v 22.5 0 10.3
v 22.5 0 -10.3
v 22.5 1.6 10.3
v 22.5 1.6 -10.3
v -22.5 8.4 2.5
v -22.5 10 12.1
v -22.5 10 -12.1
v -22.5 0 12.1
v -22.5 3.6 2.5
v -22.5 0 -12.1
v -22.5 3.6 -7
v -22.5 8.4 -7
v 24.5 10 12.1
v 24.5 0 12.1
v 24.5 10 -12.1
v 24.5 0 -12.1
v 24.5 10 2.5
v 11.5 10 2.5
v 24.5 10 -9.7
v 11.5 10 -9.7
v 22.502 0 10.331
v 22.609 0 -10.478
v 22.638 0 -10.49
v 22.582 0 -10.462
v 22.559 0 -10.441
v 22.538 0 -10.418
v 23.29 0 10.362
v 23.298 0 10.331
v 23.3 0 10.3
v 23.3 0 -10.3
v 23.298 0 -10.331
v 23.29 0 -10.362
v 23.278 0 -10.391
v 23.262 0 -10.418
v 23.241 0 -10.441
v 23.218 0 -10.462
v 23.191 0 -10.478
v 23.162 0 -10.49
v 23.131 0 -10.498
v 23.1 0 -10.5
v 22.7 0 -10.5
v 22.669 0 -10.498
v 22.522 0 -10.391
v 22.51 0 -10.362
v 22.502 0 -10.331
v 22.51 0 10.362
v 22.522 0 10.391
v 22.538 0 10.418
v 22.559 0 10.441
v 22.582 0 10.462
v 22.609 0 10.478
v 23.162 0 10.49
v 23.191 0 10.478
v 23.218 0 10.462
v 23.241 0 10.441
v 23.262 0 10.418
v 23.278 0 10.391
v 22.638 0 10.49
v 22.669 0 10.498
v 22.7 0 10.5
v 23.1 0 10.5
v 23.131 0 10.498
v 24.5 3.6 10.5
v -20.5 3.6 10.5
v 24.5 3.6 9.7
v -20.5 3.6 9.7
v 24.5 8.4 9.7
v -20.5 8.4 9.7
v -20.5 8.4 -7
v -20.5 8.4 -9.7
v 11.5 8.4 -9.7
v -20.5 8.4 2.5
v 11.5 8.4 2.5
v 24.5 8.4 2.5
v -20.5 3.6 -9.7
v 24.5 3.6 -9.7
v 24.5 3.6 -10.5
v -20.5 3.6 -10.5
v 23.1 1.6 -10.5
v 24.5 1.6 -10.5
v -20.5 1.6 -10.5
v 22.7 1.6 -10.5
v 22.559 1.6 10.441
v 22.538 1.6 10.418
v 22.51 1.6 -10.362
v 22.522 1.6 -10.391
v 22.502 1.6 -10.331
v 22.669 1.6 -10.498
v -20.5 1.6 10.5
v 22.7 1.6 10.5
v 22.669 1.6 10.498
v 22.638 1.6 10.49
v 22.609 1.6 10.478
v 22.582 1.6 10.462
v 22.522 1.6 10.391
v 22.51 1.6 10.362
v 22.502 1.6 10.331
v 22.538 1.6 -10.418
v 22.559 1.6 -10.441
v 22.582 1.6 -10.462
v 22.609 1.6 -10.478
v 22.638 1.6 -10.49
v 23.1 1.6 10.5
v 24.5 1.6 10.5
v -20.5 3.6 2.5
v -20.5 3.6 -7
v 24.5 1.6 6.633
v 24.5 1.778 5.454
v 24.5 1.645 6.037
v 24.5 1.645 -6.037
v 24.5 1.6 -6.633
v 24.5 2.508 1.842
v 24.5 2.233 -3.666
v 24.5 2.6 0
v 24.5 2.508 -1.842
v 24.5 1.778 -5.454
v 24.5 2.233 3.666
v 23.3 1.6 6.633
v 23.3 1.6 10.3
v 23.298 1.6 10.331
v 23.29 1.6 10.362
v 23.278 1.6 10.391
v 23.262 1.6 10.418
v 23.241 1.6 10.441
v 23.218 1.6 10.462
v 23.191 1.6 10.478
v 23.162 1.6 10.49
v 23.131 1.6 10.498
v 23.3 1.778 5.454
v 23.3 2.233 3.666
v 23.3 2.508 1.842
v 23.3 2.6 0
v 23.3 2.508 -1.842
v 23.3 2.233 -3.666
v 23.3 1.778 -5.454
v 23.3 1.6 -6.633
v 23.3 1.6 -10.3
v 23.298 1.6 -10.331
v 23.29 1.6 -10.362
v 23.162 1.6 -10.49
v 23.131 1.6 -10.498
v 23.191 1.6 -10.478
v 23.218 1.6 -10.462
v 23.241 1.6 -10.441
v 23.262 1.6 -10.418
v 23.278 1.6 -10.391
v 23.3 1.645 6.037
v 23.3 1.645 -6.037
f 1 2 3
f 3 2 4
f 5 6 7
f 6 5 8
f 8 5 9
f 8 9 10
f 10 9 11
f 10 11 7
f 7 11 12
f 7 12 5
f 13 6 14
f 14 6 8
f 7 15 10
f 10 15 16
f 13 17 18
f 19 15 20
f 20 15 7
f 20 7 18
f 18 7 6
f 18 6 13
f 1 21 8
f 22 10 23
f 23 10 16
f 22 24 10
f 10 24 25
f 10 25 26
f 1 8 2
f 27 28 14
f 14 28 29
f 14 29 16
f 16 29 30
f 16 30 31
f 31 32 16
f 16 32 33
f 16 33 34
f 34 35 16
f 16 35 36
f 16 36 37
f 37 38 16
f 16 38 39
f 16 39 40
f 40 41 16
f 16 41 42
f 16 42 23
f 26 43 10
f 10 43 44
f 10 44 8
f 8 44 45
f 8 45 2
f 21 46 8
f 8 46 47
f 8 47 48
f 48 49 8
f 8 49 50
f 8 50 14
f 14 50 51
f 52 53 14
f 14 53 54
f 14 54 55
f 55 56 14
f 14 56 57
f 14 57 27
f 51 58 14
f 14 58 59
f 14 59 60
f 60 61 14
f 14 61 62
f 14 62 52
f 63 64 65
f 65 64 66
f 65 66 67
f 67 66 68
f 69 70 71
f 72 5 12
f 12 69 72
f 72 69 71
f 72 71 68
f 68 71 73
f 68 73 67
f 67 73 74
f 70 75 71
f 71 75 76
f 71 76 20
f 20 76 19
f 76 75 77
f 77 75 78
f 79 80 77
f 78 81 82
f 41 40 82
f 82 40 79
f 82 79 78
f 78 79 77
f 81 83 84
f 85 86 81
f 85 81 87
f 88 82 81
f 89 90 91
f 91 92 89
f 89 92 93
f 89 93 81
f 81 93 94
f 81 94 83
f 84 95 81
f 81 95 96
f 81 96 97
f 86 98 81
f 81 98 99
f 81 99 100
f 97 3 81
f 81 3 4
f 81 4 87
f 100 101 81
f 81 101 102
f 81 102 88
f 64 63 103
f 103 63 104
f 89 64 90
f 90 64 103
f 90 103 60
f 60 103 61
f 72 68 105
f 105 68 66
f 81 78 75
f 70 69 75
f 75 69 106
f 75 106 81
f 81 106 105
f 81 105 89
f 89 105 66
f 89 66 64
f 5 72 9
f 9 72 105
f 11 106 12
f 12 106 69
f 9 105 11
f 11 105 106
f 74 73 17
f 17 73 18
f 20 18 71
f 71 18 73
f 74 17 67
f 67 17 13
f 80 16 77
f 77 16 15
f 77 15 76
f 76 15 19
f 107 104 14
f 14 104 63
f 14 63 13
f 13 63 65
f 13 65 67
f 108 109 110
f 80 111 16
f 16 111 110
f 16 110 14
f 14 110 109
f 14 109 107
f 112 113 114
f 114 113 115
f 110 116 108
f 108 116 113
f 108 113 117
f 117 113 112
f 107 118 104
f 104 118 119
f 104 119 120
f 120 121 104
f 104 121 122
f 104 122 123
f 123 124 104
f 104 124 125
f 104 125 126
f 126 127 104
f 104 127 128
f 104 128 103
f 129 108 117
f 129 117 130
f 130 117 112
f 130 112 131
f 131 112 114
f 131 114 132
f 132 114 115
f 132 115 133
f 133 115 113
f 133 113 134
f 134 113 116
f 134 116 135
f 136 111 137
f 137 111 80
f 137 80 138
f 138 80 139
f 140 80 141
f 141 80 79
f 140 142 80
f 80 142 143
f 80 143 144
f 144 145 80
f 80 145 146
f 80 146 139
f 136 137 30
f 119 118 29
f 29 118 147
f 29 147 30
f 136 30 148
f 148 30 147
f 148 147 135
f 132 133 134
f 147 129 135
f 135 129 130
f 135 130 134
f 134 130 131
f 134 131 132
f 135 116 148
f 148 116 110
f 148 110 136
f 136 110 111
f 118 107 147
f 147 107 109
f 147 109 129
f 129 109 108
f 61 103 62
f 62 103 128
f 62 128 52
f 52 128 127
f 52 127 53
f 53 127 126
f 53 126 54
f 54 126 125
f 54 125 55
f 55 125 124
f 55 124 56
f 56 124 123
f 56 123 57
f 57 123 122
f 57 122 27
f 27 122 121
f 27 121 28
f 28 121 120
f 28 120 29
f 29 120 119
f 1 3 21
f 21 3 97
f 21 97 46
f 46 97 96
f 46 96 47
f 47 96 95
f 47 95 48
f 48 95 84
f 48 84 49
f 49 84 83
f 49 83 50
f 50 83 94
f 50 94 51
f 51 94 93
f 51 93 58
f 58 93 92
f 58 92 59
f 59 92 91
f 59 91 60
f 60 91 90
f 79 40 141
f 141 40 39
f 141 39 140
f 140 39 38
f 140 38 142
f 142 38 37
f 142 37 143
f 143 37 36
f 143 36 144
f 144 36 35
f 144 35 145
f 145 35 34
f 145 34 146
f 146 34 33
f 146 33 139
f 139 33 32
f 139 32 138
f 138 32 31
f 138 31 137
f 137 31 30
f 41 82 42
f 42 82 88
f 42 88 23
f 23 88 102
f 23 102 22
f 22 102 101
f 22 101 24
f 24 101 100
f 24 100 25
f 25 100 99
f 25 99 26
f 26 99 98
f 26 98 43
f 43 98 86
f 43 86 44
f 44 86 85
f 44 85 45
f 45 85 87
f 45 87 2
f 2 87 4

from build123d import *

# Parameters (mm, degrees)
CROQUIS1_W              = 45
CROQUIS1_H              = 24.2
SALIENTE_EXTRUIR1_DEPTH = 10
CORTAR_EXTRUIR2_DEPTH   = 43
CROQUIS4_W              = 9.5
CROQUIS4_H              = 4.8
CORTAR_EXTRUIR3_DEPTH   = 48.659311787
CROQUIS5_W              = 12.2
CROQUIS5_H              = 1.6
CORTAR_EXTRUIR4_DEPTH   = 11
SALIENTE_EXTRUIR2_DEPTH = 2
SALIENTE_EXTRUIR3_DEPTH = 1.2
REDONDEO1_R             = 4
REDONDEO2_R             = 0.2


with BuildPart() as part:
    # Croquis1 → Saliente-Extruir1 (new body)
    with BuildSketch(Plane(origin=(0, 0, 0), x_dir=(1, 0, 0), z_dir=(0, 1, 0))):
        Rectangle(CROQUIS1_W, CROQUIS1_H)
    extrude(amount=SALIENTE_EXTRUIR1_DEPTH)

    # Croquis2 → Cortar-Extruir2 (cut)
    with BuildSketch(Plane(origin=(22.5, 0, 0), x_dir=(0, 0, -1), z_dir=(1, 0, 0))):
        Polygon((10.5, 1.6), (-10.5, 1.6), (-10.5, 3.6), (-9.7, 3.6), (-9.7, 8.4), (9.7, 8.4), (9.7, 3.6), (10.5, 3.6), align=None)
    extrude(amount=-CORTAR_EXTRUIR2_DEPTH, mode=Mode.SUBTRACT)

    # Croquis4 → Cortar-Extruir3 (cut, through all)
    with BuildSketch(Plane(origin=(22.5, 0, 0), x_dir=(0, 0, -1), z_dir=(1, 0, 0))):
        with Locations((2.25, 6)):
            Rectangle(CROQUIS4_W, CROQUIS4_H)
    extrude(amount=-CORTAR_EXTRUIR3_DEPTH, mode=Mode.SUBTRACT)

    # Croquis5 → Cortar-Extruir4 (cut)
    with BuildSketch(Plane(origin=(22.5, 0, 0), x_dir=(0, 0, -1), z_dir=(1, 0, 0))):
        with Locations((3.6, 9.2)):
            Rectangle(CROQUIS5_W, CROQUIS5_H)
    extrude(amount=-CORTAR_EXTRUIR4_DEPTH, mode=Mode.SUBTRACT)

    # Croquis6 → Saliente-Extruir2 (add)
    with BuildSketch(Plane(origin=(22.5, 0, 0), x_dir=(0, 0, -1), z_dir=(1, 0, 0))):
        Polygon((-2.5, 10), (-12.1, 10), (-12.1, 0), (-10.5, 0), (-10.5, 1.6), (-10.5, 3.6), (-9.7, 3.6), (-9.7, 8.4), (-2.5, 8.4), align=None)
        Polygon((12.1, 10), (9.7, 10), (9.7, 3.6), (10.5, 3.6), (10.5, 1.6), (10.5, 0), (12.1, 0), align=None)
    extrude(amount=SALIENTE_EXTRUIR2_DEPTH)

    # Croquis7 → Saliente-Extruir3 (add)
    with BuildSketch(Plane(origin=(24.5, 0, 0), x_dir=(0, 0, -1), z_dir=(1, 0, 0))):
        with BuildLine():
            Line((-10.5, 0), (10.5, 0))
            Line((10.5, 0), (10.5, 1.6))
            Line((10.5, 1.6), (6, 1.6))
            ThreePointArc((6, 1.6), (0, 2.6), (-6, 1.6))
            Line((-6, 1.6), (-10.5, 1.6))
            Line((-10.5, 1.6), (-10.5, 0))
        make_face()
    extrude(amount=-SALIENTE_EXTRUIR3_DEPTH)

    # Redondeo1
    redondeo1_edges = [part.edges().sort_by_distance(p)[0] for p in [
        (23.9, 1.6, 6),
        (23.9, 1.6, -6),
    ]]
    fillet(redondeo1_edges, radius=REDONDEO1_R)

    # Redondeo2
    redondeo2_edges = [part.edges().sort_by_distance(p)[0] for p in [
        (22.5, 0.8, -10.5),
        (23.3, 0.8, 10.5),
        (23.3, 0.8, -10.5),
        (22.5, 0.8, 10.5),
    ]]
    fillet(redondeo2_edges, radius=REDONDEO2_R)


solid = part.part
